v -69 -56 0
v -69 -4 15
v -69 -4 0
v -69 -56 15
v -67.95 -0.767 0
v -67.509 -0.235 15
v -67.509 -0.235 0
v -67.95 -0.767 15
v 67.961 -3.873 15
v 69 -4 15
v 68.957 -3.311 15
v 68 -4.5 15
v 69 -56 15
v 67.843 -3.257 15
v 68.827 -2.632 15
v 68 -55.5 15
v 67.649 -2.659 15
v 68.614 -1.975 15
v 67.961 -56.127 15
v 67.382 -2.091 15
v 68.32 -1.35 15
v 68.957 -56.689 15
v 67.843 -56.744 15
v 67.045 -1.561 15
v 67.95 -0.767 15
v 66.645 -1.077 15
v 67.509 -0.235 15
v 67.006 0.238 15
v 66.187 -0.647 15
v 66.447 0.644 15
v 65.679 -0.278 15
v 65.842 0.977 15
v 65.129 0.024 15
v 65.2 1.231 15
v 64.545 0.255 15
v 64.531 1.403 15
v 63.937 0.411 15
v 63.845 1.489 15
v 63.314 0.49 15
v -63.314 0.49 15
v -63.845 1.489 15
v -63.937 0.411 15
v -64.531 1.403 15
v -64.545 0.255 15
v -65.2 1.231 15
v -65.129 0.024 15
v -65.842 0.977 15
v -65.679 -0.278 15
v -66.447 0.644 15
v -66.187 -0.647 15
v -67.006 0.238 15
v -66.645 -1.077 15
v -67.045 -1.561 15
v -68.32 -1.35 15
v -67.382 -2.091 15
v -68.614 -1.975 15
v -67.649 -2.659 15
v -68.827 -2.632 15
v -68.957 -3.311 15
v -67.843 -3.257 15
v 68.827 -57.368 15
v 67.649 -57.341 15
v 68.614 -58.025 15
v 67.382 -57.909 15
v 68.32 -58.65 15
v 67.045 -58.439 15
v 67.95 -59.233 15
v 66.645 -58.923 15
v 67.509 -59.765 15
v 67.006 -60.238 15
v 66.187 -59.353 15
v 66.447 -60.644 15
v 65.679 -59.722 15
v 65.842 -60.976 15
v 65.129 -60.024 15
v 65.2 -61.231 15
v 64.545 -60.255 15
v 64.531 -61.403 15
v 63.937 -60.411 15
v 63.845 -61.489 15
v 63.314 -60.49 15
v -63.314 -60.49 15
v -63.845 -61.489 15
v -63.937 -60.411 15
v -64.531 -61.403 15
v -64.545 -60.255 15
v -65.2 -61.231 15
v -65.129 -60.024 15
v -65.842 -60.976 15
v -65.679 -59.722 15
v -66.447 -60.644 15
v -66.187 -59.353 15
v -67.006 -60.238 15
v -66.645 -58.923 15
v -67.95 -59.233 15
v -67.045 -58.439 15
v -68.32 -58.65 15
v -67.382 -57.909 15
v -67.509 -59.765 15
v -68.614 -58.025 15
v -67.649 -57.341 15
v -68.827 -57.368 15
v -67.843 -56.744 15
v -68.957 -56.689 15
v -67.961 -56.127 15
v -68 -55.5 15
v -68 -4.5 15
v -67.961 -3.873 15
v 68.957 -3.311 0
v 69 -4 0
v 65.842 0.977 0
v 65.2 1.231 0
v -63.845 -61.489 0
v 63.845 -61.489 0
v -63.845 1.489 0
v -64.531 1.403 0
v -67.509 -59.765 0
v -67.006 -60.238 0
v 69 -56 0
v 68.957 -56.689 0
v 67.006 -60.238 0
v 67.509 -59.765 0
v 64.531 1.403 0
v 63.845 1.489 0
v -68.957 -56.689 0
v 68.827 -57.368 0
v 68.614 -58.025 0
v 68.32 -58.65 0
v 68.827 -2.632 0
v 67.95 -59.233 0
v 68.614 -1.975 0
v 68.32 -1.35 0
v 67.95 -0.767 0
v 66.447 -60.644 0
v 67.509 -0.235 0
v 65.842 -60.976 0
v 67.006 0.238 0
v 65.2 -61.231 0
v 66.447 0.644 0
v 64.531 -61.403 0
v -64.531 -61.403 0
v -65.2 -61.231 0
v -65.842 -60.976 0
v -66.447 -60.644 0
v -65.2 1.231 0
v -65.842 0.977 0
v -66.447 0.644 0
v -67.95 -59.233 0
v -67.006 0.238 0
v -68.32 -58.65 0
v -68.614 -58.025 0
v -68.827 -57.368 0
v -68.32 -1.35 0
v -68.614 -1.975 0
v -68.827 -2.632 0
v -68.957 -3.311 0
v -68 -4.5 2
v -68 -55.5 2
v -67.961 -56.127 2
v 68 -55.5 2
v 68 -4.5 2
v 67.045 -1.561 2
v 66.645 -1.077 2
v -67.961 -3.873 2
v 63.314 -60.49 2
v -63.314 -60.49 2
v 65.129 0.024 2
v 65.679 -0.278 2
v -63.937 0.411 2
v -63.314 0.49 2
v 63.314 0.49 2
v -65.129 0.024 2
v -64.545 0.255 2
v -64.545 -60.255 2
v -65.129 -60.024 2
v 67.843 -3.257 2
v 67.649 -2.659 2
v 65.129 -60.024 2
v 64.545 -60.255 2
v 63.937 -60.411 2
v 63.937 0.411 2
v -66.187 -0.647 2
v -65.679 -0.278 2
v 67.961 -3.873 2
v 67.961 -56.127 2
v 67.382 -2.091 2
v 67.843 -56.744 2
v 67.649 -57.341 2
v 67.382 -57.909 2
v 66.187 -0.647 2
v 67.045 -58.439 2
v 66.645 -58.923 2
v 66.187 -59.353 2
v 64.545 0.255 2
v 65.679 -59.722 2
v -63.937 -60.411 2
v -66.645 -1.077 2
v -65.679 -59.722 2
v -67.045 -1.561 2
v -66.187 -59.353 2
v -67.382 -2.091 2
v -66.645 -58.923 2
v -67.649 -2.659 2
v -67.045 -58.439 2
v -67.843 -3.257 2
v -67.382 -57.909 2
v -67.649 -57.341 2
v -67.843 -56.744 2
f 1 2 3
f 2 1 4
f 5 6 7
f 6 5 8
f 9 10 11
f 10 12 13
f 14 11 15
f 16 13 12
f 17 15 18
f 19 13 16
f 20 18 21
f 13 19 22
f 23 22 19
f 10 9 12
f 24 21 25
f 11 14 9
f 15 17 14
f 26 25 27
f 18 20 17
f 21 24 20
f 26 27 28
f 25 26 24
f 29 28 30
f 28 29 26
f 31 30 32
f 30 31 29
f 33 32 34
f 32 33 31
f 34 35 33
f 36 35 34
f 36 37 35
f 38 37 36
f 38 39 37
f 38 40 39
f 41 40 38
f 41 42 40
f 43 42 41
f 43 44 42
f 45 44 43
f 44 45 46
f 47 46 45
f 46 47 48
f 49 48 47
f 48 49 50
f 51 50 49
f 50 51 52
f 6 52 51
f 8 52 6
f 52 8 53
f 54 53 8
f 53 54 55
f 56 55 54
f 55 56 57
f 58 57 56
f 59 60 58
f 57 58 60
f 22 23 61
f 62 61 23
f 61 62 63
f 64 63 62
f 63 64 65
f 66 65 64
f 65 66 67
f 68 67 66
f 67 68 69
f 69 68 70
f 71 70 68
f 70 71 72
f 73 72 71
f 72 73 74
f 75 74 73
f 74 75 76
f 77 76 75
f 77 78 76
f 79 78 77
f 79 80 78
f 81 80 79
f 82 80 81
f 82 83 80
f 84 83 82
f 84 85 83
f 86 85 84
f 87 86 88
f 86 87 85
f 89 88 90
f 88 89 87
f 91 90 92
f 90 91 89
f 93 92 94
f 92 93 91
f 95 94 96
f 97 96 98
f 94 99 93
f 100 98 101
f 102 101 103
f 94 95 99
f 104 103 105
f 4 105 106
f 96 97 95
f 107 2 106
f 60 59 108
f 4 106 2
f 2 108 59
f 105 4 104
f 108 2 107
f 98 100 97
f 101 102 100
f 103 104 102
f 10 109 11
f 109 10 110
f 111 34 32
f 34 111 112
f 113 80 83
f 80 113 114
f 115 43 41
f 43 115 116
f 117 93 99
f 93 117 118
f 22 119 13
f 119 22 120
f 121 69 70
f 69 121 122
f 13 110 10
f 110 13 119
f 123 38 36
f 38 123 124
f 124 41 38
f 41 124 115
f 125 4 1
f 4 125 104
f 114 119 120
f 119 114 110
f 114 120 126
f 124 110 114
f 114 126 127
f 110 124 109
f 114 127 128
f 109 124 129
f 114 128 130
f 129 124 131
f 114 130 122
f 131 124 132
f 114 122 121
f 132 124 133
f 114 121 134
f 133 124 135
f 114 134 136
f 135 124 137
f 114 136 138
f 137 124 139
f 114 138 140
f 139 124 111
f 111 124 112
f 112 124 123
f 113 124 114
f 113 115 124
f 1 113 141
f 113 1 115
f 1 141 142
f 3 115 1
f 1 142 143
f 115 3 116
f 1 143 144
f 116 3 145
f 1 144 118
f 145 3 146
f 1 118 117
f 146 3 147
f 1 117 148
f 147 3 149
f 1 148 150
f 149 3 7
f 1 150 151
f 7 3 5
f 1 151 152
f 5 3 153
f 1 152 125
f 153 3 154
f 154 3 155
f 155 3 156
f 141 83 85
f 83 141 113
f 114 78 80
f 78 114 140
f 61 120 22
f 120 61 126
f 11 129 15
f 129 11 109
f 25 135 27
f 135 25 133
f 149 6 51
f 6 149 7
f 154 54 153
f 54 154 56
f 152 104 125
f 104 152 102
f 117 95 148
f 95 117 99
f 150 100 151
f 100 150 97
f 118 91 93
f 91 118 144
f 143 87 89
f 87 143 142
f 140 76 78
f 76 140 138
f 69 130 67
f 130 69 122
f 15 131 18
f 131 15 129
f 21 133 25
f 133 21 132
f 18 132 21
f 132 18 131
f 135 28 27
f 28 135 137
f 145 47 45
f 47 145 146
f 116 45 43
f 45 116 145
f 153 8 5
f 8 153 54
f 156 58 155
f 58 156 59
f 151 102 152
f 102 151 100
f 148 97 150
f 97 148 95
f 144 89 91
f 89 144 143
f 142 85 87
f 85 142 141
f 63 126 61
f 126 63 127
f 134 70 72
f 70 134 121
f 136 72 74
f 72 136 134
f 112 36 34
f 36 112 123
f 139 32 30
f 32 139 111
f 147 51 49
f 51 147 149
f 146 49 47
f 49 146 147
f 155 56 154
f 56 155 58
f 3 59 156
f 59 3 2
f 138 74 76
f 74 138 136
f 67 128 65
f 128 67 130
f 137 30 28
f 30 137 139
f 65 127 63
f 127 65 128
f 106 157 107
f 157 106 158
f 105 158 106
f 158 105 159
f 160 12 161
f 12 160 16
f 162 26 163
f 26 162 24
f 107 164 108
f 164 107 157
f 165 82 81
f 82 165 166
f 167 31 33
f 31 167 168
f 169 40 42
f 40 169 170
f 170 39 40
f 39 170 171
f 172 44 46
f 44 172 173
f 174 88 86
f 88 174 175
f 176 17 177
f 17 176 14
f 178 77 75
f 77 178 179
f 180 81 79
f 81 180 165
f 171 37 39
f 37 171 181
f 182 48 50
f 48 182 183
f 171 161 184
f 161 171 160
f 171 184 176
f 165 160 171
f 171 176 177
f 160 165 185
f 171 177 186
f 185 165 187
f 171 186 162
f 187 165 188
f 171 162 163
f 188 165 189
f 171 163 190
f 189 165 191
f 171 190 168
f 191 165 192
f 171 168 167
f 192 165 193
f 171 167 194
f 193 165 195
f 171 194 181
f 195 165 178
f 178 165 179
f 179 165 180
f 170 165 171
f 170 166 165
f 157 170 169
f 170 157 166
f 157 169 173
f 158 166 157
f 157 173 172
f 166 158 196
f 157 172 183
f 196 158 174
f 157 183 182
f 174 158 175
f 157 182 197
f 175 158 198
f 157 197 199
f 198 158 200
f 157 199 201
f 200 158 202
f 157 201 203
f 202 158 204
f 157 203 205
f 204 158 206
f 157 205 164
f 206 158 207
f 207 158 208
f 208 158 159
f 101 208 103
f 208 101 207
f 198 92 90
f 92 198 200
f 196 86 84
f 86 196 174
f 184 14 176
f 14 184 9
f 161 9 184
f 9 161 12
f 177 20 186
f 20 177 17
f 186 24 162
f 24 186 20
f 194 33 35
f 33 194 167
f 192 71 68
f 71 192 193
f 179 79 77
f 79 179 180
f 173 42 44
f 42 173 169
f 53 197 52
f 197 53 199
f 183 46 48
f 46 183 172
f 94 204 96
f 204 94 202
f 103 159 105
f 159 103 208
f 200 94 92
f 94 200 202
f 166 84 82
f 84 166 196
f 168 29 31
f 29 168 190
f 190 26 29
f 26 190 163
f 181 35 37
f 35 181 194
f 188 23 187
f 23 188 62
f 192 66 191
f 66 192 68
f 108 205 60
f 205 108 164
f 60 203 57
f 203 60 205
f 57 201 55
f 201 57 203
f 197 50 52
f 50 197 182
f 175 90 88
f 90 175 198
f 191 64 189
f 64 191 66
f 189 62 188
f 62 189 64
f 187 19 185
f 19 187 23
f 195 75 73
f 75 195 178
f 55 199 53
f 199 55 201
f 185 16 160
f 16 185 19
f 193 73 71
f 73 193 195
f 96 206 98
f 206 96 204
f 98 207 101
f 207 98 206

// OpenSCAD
$fn = 50;


difference() {
	union() {
		translate(v = [0, -30.0000000000, 0]) {
			hull() {
				translate(v = [-63.5000000000, 26.0000000000, 0]) {
					cylinder(h = 15, r = 5.5000000000);
				}
				translate(v = [63.5000000000, 26.0000000000, 0]) {
					cylinder(h = 15, r = 5.5000000000);
				}
				translate(v = [-63.5000000000, -26.0000000000, 0]) {
					cylinder(h = 15, r = 5.5000000000);
				}
				translate(v = [63.5000000000, -26.0000000000, 0]) {
					cylinder(h = 15, r = 5.5000000000);
				}
			}
		}
	}
	union() {
		translate(v = [0, -30.0000000000, 2]) {
			hull() {
				translate(v = [-63.0000000000, 25.5000000000, 0]) {
					cylinder(h = 30, r = 5);
				}
				translate(v = [63.0000000000, 25.5000000000, 0]) {
					cylinder(h = 30, r = 5);
				}
				translate(v = [-63.0000000000, -25.5000000000, 0]) {
					cylinder(h = 30, r = 5);
				}
				translate(v = [63.0000000000, -25.5000000000, 0]) {
					cylinder(h = 30, r = 5);
				}
			}
		}
	}
}
